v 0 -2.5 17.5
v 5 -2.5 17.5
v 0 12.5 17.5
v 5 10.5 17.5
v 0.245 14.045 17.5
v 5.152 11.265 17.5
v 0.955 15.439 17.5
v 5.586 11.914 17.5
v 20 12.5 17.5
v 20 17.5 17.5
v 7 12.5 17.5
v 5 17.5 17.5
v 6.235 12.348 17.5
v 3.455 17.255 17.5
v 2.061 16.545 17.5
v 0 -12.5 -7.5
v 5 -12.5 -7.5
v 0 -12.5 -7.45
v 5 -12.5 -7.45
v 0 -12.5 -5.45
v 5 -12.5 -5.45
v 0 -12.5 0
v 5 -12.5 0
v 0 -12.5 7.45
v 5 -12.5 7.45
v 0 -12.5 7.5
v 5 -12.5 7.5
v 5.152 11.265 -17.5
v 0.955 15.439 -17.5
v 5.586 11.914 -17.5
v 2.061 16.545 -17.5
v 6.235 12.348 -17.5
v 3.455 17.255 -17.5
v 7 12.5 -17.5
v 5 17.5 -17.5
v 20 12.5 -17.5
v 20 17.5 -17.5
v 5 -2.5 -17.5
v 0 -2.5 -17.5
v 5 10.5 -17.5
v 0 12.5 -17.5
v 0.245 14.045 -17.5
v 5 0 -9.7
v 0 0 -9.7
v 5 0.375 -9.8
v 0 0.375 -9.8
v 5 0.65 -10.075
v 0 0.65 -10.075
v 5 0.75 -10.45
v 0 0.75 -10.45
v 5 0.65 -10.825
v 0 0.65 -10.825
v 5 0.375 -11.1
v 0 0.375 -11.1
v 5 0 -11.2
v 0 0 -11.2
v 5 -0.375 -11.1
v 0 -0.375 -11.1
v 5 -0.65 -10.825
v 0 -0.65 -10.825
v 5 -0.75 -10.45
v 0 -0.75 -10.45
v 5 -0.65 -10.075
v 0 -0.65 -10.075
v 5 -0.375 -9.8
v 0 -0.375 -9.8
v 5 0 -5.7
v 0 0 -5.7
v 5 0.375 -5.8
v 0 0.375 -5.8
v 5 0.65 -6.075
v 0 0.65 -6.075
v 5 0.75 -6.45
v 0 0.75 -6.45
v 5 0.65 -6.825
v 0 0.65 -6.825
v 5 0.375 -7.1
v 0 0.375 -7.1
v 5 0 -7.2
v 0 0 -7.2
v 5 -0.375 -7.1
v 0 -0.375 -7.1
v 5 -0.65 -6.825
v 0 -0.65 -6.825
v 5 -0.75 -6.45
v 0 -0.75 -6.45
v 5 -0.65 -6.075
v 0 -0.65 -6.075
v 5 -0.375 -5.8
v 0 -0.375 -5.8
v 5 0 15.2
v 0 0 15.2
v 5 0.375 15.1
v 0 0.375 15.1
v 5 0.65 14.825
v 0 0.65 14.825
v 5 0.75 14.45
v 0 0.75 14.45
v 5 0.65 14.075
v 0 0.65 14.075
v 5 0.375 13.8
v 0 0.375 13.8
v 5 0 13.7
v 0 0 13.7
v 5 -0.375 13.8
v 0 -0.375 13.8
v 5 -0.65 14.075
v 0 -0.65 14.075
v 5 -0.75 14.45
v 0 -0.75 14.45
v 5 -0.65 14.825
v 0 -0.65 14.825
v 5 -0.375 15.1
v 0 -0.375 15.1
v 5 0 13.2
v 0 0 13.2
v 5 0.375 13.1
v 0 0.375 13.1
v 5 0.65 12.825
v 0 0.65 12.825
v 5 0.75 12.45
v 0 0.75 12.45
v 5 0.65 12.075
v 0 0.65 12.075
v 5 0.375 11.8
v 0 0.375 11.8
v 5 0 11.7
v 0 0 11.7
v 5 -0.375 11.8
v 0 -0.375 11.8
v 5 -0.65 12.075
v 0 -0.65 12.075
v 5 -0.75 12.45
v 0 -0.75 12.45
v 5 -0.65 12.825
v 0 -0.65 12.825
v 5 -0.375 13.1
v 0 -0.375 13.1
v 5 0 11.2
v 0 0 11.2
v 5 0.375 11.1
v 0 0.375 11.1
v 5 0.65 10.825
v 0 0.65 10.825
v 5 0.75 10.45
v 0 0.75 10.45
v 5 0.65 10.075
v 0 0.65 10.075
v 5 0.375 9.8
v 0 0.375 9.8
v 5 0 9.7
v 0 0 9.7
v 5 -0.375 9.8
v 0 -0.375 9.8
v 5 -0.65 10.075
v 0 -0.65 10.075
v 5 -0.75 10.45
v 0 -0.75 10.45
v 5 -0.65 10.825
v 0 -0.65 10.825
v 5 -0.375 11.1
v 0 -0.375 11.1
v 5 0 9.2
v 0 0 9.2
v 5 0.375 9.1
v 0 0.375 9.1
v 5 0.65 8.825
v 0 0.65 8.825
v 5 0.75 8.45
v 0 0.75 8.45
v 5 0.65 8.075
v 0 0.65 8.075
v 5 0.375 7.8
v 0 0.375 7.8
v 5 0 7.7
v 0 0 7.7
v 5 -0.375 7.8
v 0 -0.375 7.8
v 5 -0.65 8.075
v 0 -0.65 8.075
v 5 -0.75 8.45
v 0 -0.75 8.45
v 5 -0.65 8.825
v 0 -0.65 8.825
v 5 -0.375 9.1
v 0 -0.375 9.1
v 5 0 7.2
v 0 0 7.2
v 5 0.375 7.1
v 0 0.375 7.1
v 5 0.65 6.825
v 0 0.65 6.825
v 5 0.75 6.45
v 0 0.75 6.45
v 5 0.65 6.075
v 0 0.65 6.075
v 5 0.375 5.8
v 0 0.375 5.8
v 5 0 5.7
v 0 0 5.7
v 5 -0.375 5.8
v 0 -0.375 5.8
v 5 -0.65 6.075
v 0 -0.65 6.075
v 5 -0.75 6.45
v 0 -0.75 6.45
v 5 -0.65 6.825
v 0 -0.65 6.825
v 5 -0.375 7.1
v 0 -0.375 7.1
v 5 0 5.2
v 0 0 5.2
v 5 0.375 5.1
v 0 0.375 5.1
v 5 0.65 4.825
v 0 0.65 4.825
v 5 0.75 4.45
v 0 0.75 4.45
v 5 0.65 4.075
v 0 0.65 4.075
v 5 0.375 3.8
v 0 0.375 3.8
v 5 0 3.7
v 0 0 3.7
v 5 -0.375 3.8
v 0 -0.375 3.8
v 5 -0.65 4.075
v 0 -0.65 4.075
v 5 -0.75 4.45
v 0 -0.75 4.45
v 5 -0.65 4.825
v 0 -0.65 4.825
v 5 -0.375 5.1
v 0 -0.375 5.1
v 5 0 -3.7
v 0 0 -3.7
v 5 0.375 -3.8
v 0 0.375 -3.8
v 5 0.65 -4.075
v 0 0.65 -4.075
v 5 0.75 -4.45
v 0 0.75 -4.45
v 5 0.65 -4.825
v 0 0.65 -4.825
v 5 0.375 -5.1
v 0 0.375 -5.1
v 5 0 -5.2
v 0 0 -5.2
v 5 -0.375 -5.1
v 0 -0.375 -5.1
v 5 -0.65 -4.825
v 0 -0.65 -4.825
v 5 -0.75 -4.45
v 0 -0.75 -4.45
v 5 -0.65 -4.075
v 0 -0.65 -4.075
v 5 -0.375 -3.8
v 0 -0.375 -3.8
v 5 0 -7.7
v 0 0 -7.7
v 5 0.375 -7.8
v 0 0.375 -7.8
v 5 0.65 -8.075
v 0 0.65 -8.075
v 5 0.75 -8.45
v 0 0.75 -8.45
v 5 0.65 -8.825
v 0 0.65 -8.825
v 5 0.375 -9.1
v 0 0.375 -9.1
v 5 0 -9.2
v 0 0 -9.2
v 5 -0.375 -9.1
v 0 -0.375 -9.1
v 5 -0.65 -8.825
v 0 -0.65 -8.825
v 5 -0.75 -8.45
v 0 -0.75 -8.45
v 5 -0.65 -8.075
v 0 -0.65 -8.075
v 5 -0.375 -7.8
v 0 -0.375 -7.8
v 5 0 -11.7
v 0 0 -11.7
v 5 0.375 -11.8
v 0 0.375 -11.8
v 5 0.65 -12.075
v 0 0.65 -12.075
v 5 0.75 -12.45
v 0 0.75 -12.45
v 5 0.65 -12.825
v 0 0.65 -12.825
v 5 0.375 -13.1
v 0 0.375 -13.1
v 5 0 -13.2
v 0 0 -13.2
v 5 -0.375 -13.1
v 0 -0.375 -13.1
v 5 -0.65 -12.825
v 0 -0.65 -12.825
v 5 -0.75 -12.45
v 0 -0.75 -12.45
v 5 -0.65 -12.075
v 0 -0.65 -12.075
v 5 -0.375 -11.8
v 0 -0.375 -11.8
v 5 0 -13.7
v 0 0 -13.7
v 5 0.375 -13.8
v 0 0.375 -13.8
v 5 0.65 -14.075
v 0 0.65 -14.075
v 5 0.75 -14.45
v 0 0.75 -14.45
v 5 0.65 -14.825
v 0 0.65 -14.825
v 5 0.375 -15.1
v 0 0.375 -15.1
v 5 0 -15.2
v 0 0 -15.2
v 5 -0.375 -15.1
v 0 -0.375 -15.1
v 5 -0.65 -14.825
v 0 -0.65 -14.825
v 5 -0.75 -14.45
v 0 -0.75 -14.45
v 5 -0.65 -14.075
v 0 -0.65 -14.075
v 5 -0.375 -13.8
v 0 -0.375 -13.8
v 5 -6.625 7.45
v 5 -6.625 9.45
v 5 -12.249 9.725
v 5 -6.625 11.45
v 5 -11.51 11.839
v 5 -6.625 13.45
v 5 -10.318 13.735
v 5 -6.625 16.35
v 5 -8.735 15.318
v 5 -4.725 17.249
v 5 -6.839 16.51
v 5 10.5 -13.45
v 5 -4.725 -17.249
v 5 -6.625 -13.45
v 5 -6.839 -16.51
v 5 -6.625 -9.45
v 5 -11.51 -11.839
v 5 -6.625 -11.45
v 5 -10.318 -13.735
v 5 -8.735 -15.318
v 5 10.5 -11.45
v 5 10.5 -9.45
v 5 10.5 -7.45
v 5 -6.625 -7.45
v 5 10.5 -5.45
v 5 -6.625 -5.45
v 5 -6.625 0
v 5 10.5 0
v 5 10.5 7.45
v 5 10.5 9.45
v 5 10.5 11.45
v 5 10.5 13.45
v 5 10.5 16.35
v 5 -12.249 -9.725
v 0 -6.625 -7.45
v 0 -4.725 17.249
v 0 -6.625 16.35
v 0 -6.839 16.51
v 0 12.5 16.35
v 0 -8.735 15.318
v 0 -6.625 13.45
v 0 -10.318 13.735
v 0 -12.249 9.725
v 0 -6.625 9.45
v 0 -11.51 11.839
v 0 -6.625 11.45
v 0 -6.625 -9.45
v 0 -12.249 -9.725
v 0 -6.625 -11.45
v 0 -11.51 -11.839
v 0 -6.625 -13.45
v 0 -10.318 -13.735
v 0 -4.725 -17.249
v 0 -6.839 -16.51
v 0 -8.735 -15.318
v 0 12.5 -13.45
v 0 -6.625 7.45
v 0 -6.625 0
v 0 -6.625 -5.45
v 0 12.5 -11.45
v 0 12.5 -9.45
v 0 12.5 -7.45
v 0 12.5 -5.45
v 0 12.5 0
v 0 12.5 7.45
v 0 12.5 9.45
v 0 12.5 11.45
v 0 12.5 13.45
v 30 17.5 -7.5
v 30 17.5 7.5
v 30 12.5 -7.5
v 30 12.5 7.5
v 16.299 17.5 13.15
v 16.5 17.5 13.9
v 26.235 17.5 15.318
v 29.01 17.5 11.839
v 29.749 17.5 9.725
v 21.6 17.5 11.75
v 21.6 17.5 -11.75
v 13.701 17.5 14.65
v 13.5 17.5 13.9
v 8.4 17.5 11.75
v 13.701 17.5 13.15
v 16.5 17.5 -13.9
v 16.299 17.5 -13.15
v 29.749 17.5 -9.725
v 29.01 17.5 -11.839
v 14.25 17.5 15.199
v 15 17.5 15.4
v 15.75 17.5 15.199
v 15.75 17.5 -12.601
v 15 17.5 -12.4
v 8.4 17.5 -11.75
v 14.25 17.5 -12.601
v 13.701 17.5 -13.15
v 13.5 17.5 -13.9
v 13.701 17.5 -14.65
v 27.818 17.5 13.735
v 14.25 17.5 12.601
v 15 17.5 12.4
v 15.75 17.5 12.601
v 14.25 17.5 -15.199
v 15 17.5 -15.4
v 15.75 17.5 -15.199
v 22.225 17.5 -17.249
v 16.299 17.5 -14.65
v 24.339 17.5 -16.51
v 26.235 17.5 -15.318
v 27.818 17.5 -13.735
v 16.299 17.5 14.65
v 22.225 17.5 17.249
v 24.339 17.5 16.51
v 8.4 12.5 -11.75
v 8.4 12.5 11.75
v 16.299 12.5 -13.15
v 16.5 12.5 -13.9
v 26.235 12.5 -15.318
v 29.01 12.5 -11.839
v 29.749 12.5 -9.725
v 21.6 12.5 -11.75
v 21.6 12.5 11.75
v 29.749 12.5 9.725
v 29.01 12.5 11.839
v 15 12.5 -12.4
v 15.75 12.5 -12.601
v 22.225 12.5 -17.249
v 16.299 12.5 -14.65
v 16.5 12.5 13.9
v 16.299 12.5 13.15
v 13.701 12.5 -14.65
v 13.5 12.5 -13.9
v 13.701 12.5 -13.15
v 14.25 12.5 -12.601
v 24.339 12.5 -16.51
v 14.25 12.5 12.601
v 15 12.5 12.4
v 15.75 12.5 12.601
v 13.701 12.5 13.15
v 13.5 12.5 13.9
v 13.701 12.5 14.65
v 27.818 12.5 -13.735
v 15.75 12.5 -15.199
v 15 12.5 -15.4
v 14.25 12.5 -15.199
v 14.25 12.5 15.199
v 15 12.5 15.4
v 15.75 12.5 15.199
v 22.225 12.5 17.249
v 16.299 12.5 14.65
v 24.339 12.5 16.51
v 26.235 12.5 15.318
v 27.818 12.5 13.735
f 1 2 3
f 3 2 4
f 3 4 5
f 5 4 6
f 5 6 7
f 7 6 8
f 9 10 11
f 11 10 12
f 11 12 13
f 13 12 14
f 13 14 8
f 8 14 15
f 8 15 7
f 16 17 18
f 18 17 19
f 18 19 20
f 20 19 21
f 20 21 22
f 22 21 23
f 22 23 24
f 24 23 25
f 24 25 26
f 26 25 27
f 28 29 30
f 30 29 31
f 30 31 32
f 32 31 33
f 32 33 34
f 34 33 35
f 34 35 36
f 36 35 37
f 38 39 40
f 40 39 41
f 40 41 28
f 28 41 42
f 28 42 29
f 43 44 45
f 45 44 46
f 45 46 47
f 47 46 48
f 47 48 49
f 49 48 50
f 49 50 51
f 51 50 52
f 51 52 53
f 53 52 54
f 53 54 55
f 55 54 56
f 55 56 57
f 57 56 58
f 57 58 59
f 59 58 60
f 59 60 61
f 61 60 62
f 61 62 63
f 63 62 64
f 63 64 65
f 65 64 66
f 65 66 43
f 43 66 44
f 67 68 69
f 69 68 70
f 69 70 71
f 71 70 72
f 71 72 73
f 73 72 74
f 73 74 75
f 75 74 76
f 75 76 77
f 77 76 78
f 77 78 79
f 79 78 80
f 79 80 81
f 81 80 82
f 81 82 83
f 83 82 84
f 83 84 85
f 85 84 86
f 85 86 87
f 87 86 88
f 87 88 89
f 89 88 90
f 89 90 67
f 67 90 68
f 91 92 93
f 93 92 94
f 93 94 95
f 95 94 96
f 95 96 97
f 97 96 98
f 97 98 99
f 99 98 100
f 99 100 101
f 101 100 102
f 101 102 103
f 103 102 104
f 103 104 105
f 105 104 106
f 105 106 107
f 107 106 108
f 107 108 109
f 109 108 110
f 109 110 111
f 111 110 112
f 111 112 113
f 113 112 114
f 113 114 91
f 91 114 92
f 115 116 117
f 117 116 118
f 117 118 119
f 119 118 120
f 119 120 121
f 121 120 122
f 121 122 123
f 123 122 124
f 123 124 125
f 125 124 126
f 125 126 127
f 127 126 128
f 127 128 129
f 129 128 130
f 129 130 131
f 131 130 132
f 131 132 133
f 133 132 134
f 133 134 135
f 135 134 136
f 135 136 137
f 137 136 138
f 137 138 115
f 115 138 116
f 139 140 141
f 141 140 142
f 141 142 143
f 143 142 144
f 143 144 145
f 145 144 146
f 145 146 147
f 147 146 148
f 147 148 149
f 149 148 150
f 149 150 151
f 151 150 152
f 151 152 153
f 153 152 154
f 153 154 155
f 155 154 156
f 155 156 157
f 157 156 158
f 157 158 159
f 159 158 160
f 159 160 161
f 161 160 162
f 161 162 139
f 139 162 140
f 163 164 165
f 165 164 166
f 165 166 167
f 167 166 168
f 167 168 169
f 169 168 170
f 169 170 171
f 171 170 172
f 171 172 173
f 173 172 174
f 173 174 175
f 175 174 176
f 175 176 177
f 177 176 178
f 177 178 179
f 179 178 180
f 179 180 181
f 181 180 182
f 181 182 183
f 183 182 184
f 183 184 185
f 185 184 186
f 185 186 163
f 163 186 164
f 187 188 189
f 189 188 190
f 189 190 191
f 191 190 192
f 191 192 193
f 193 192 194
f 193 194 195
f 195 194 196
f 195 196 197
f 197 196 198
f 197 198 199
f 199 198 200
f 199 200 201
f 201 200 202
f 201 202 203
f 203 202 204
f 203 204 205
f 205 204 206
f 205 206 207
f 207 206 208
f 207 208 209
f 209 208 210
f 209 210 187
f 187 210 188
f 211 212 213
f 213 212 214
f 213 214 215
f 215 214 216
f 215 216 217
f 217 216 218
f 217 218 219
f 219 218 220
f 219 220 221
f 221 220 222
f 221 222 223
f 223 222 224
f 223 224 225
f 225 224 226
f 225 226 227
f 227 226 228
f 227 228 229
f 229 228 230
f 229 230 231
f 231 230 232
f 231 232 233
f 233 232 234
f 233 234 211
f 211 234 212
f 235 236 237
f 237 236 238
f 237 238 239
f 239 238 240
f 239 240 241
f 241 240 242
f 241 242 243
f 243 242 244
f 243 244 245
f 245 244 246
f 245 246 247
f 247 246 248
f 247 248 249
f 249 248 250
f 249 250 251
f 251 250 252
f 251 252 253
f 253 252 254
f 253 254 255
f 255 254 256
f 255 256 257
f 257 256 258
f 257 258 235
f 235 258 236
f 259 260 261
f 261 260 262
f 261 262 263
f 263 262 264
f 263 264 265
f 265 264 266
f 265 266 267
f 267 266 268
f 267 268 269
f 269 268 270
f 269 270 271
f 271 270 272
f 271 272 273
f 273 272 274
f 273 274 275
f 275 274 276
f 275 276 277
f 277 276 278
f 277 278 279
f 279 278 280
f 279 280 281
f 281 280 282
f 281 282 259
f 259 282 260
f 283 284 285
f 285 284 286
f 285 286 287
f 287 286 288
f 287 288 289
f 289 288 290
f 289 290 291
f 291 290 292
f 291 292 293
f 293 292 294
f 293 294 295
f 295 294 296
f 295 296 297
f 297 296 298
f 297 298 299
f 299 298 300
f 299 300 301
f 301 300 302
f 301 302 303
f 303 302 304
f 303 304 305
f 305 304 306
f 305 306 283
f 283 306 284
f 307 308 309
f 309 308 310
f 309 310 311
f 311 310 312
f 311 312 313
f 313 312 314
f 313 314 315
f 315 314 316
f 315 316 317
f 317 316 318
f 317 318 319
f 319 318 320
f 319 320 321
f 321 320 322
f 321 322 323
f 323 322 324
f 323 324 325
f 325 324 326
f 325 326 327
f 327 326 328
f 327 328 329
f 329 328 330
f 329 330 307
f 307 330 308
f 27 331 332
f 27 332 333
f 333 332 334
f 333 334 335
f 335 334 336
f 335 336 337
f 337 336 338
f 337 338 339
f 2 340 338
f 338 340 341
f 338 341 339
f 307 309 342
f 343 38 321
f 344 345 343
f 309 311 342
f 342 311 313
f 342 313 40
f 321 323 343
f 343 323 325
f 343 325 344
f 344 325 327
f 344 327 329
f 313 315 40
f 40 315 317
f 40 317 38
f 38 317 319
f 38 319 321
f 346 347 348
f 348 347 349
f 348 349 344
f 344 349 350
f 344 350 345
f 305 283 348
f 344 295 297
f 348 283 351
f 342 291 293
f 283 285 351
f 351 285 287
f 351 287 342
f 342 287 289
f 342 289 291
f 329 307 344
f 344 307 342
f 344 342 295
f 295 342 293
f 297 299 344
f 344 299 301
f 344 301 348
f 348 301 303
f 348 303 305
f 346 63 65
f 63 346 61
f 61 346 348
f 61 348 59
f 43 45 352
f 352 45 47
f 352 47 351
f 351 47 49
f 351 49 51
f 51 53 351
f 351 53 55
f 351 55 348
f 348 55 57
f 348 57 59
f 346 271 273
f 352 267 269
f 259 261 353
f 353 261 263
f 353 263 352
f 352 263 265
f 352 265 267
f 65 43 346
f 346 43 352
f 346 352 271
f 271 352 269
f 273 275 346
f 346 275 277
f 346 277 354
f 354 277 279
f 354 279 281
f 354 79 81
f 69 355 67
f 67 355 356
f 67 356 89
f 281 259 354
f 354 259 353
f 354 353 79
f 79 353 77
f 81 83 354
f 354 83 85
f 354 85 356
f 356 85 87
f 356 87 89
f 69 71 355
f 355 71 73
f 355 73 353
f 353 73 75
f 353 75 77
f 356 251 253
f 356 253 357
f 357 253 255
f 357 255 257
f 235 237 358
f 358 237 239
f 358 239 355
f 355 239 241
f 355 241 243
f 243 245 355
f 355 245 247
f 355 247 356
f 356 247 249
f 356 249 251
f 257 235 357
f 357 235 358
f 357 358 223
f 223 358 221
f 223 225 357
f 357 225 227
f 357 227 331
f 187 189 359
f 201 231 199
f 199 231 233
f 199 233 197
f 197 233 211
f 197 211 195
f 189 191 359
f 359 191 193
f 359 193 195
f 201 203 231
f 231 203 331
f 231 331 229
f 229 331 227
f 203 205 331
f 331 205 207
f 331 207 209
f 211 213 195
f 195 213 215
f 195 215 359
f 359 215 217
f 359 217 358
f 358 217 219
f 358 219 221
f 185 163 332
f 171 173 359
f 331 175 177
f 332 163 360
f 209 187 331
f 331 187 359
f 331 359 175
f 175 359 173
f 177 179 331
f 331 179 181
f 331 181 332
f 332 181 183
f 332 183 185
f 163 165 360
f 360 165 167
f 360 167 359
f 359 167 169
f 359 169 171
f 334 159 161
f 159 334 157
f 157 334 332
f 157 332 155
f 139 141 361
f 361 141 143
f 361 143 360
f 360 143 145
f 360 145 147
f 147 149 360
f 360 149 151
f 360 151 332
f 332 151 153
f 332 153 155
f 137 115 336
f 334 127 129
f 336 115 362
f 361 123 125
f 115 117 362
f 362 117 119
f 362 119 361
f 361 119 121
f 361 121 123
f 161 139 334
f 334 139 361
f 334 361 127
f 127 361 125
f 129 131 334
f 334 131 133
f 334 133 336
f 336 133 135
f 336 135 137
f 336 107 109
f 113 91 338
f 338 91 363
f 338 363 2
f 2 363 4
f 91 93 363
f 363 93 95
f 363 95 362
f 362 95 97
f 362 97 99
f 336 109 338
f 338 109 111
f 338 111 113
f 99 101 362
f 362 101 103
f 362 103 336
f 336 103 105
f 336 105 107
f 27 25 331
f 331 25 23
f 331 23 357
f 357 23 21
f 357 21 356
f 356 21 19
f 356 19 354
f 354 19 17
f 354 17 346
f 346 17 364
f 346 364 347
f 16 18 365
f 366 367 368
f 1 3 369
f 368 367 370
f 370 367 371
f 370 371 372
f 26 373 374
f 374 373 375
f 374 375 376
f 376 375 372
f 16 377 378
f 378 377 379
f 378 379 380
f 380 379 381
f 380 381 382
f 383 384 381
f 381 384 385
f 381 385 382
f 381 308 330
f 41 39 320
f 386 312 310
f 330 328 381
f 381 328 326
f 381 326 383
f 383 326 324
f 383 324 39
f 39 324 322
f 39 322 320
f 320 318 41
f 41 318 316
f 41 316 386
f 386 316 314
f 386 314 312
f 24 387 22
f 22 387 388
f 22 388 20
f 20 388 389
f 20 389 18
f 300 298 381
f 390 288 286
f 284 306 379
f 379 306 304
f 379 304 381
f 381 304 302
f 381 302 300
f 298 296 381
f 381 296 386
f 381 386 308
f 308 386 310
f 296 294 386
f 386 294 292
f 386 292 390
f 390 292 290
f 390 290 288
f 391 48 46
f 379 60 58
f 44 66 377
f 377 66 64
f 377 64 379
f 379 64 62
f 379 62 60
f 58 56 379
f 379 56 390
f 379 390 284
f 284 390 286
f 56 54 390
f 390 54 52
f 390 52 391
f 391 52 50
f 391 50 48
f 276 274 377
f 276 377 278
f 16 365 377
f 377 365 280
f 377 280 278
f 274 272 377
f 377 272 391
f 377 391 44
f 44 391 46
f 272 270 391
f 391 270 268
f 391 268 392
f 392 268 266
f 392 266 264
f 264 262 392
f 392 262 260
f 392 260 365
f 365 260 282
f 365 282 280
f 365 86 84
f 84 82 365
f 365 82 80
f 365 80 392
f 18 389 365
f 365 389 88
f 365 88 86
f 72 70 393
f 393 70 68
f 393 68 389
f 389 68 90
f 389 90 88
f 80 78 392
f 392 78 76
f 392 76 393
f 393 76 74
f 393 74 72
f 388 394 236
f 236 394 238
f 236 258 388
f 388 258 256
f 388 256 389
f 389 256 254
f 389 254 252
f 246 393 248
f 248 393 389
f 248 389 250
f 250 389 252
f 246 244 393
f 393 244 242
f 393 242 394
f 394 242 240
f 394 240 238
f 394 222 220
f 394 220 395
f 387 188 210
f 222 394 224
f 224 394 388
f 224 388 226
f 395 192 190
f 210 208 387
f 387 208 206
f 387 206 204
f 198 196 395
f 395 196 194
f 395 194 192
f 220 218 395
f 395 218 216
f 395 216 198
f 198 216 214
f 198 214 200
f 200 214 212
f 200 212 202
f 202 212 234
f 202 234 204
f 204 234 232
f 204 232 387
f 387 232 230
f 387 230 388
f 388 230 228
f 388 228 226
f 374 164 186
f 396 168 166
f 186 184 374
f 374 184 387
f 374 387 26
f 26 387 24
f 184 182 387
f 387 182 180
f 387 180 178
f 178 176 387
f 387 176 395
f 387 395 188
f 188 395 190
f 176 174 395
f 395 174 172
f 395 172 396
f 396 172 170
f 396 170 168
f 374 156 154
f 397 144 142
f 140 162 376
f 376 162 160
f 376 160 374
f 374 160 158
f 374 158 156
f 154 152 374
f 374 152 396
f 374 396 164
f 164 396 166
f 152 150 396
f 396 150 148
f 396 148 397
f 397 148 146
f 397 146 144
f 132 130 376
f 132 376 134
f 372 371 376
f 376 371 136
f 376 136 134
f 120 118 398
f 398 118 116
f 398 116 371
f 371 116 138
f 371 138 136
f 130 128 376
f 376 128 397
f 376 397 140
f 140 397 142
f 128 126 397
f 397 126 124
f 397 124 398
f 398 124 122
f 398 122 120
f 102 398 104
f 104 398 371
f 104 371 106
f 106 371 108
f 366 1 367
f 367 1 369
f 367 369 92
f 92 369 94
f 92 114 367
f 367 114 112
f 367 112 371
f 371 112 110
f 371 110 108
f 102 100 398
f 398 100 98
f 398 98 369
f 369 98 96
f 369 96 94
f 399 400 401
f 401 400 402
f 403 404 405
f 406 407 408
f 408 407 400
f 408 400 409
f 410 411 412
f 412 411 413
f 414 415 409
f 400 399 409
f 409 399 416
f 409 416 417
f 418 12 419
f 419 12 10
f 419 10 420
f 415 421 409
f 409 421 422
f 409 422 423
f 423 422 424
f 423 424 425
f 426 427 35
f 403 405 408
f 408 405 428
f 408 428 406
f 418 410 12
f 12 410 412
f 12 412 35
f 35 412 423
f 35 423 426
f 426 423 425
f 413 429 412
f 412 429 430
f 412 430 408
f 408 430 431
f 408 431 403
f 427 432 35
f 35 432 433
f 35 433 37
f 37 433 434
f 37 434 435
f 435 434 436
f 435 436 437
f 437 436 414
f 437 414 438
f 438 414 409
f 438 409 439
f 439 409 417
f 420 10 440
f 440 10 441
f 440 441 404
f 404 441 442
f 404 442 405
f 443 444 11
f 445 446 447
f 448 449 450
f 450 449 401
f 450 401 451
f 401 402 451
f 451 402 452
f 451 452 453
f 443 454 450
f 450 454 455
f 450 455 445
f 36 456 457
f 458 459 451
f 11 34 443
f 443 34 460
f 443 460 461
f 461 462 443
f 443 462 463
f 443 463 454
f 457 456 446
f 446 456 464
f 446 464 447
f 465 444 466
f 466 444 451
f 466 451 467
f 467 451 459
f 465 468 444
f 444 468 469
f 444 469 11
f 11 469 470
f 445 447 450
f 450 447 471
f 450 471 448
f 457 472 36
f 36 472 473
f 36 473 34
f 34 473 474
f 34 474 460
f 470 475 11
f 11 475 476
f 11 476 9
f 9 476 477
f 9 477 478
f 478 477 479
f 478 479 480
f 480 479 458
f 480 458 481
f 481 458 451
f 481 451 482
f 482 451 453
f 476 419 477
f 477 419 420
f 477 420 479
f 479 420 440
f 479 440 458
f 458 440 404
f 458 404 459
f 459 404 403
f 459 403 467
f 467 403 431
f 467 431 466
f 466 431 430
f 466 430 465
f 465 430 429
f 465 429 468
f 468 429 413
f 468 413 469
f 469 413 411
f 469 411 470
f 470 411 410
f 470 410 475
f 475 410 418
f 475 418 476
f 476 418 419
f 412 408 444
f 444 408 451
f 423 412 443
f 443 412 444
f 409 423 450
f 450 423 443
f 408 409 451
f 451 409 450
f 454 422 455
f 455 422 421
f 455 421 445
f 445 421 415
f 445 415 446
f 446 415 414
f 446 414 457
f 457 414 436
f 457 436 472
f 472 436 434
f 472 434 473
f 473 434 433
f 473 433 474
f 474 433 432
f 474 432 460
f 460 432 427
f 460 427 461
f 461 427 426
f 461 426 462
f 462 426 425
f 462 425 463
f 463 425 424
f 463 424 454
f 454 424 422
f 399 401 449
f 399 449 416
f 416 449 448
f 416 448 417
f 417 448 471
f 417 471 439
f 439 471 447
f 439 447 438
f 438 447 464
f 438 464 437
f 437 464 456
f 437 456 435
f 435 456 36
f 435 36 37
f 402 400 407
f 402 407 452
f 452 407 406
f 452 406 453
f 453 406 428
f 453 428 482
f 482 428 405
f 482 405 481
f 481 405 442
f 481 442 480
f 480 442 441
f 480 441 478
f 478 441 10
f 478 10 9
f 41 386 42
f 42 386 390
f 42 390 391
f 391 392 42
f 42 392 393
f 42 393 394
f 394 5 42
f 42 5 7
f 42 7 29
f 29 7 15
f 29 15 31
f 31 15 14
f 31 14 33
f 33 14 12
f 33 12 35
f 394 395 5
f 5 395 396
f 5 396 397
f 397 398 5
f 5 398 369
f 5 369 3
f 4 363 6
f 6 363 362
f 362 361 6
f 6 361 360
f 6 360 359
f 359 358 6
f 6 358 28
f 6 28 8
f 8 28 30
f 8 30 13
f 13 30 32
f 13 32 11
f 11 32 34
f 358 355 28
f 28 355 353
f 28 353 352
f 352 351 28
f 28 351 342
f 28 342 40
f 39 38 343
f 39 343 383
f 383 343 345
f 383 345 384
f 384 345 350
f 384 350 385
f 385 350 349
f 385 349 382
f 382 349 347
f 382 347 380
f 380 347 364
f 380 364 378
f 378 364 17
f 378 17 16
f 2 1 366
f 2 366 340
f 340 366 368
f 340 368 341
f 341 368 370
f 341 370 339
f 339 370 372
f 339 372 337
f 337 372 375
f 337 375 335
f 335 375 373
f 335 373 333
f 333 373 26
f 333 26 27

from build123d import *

# Parameters (mm, degrees)
SKETCH1_W           = 35
SKETCH1_H           = 25
SKETCH1_R           = 0.75
BOSS_EXTRUDE1_DEPTH = 5
SKETCH4_W           = 30
SKETCH4_H           = 35
BOSS_EXTRUDE2_DEPTH = 5
CUT_EXTRUDE2_REACH  = 47.894
SKETCH3_R           = 1.5
SKETCH3_W           = 23.5
SKETCH3_H           = 13.2
FILLET1_R           = 10
FILLET2_R           = 5
FILLET3_R           = 2
FILLET4_R           = 10


with BuildPart() as part:
    # Sketch1 → Boss-Extrude1 (new body)
    with BuildSketch(Plane(origin=(0, 0, 0), x_dir=(0, 0, -1), z_dir=(1, 0, 0))):
        Rectangle(SKETCH1_W, SKETCH1_H)
        with Locations((-14.45, 0)):
            Circle(SKETCH1_R, mode=Mode.SUBTRACT)
        with Locations((-12.45, 0)):
            Circle(SKETCH1_R, mode=Mode.SUBTRACT)
        with Locations((-10.45, 0)):
            Circle(SKETCH1_R, mode=Mode.SUBTRACT)
        with Locations((-8.45, 0)):
            Circle(SKETCH1_R, mode=Mode.SUBTRACT)
        with Locations((-6.45, 0)):
            Circle(SKETCH1_R, mode=Mode.SUBTRACT)
        with Locations((-4.45, 0)):
            Circle(SKETCH1_R, mode=Mode.SUBTRACT)
        with Locations((4.45, 0)):
            Circle(SKETCH1_R, mode=Mode.SUBTRACT)
        with Locations((6.45, 0)):
            Circle(SKETCH1_R, mode=Mode.SUBTRACT)
        with Locations((8.45, 0)):
            Circle(SKETCH1_R, mode=Mode.SUBTRACT)
        with Locations((10.45, 0)):
            Circle(SKETCH1_R, mode=Mode.SUBTRACT)
        with Locations((12.45, 0)):
            Circle(SKETCH1_R, mode=Mode.SUBTRACT)
        with Locations((14.45, 0)):
            Circle(SKETCH1_R, mode=Mode.SUBTRACT)
    extrude(amount=BOSS_EXTRUDE1_DEPTH)

    # Sketch4 → Boss-Extrude2 (add)
    with BuildSketch(Plane(origin=(0, 12.5, 0), x_dir=(1, 0, 0), z_dir=(0, 1, 0))):
        with Locations((15, 0)):
            Rectangle(SKETCH4_W, SKETCH4_H)
    extrude(amount=BOSS_EXTRUDE2_DEPTH)

    # Sketch3 → Cut-Extrude2 (cut, up to next)
    with BuildSketch(Plane(origin=(30, 17.5, 0), x_dir=(0, 0, -1), z_dir=(0, 1, 0)), mode=Mode.PRIVATE) as cut_extrude2_sk1:
        with Locations((13.9, 15)):
            Circle(SKETCH3_R)
    cut_extrude2_tool1 = extrude(cut_extrude2_sk1.sketch, amount=-CUT_EXTRUDE2_REACH, mode=Mode.PRIVATE) & part.part
    # Sketch3 → Cut-Extrude2 (cut, up to next)
    with BuildSketch(Plane(origin=(30, 17.5, 0), x_dir=(0, 0, -1), z_dir=(0, 1, 0)), mode=Mode.PRIVATE) as cut_extrude2_sk2:
        with Locations((-13.9, 15)):
            Circle(SKETCH3_R)
    cut_extrude2_tool2 = extrude(cut_extrude2_sk2.sketch, amount=-CUT_EXTRUDE2_REACH, mode=Mode.PRIVATE) & part.part
    # Sketch3 → Cut-Extrude2 (cut, up to next)
    with BuildSketch(Plane(origin=(30, 17.5, 0), x_dir=(0, 0, -1), z_dir=(0, 1, 0)), mode=Mode.PRIVATE) as cut_extrude2_sk3:
        with Locations((0, 15)):
            Rectangle(SKETCH3_W, SKETCH3_H)
    cut_extrude2_tool3 = extrude(cut_extrude2_sk3.sketch, amount=-CUT_EXTRUDE2_REACH, mode=Mode.PRIVATE) & part.part
    add(cut_extrude2_tool1.solids().sort_by_distance((15, 17.5, -13.9))[0], mode=Mode.SUBTRACT)
    add(cut_extrude2_tool2.solids().sort_by_distance((15, 17.5, 13.9))[0], mode=Mode.SUBTRACT)
    add(cut_extrude2_tool3.solids().sort_by_distance((15, 17.5, 0))[0], mode=Mode.SUBTRACT)

    # Fillet1
    fillet1_edges = [part.edges().sort_by_distance(p)[0] for p in [
        (30, 15, -17.5),
        (30, 15, 17.5),
    ]]
    fillet(fillet1_edges, radius=FILLET1_R)

    # Fillet2
    fillet2_edges = [part.edges().sort_by_distance(p)[0] for p in [
        (0, 17.5, 0),
    ]]
    fillet(fillet2_edges, radius=FILLET2_R)

    # Fillet3
    fillet3_edges = [part.edges().sort_by_distance(p)[0] for p in [
        (5, 12.5, 0),
    ]]
    fillet(fillet3_edges, radius=FILLET3_R)

    # Fillet4
    fillet4_edges = [part.edges().sort_by_distance(p)[0] for p in [
        (2.5, -12.5, -17.5),
        (2.5, -12.5, 17.5),
    ]]
    fillet(fillet4_edges, radius=FILLET4_R)


solid = part.part
